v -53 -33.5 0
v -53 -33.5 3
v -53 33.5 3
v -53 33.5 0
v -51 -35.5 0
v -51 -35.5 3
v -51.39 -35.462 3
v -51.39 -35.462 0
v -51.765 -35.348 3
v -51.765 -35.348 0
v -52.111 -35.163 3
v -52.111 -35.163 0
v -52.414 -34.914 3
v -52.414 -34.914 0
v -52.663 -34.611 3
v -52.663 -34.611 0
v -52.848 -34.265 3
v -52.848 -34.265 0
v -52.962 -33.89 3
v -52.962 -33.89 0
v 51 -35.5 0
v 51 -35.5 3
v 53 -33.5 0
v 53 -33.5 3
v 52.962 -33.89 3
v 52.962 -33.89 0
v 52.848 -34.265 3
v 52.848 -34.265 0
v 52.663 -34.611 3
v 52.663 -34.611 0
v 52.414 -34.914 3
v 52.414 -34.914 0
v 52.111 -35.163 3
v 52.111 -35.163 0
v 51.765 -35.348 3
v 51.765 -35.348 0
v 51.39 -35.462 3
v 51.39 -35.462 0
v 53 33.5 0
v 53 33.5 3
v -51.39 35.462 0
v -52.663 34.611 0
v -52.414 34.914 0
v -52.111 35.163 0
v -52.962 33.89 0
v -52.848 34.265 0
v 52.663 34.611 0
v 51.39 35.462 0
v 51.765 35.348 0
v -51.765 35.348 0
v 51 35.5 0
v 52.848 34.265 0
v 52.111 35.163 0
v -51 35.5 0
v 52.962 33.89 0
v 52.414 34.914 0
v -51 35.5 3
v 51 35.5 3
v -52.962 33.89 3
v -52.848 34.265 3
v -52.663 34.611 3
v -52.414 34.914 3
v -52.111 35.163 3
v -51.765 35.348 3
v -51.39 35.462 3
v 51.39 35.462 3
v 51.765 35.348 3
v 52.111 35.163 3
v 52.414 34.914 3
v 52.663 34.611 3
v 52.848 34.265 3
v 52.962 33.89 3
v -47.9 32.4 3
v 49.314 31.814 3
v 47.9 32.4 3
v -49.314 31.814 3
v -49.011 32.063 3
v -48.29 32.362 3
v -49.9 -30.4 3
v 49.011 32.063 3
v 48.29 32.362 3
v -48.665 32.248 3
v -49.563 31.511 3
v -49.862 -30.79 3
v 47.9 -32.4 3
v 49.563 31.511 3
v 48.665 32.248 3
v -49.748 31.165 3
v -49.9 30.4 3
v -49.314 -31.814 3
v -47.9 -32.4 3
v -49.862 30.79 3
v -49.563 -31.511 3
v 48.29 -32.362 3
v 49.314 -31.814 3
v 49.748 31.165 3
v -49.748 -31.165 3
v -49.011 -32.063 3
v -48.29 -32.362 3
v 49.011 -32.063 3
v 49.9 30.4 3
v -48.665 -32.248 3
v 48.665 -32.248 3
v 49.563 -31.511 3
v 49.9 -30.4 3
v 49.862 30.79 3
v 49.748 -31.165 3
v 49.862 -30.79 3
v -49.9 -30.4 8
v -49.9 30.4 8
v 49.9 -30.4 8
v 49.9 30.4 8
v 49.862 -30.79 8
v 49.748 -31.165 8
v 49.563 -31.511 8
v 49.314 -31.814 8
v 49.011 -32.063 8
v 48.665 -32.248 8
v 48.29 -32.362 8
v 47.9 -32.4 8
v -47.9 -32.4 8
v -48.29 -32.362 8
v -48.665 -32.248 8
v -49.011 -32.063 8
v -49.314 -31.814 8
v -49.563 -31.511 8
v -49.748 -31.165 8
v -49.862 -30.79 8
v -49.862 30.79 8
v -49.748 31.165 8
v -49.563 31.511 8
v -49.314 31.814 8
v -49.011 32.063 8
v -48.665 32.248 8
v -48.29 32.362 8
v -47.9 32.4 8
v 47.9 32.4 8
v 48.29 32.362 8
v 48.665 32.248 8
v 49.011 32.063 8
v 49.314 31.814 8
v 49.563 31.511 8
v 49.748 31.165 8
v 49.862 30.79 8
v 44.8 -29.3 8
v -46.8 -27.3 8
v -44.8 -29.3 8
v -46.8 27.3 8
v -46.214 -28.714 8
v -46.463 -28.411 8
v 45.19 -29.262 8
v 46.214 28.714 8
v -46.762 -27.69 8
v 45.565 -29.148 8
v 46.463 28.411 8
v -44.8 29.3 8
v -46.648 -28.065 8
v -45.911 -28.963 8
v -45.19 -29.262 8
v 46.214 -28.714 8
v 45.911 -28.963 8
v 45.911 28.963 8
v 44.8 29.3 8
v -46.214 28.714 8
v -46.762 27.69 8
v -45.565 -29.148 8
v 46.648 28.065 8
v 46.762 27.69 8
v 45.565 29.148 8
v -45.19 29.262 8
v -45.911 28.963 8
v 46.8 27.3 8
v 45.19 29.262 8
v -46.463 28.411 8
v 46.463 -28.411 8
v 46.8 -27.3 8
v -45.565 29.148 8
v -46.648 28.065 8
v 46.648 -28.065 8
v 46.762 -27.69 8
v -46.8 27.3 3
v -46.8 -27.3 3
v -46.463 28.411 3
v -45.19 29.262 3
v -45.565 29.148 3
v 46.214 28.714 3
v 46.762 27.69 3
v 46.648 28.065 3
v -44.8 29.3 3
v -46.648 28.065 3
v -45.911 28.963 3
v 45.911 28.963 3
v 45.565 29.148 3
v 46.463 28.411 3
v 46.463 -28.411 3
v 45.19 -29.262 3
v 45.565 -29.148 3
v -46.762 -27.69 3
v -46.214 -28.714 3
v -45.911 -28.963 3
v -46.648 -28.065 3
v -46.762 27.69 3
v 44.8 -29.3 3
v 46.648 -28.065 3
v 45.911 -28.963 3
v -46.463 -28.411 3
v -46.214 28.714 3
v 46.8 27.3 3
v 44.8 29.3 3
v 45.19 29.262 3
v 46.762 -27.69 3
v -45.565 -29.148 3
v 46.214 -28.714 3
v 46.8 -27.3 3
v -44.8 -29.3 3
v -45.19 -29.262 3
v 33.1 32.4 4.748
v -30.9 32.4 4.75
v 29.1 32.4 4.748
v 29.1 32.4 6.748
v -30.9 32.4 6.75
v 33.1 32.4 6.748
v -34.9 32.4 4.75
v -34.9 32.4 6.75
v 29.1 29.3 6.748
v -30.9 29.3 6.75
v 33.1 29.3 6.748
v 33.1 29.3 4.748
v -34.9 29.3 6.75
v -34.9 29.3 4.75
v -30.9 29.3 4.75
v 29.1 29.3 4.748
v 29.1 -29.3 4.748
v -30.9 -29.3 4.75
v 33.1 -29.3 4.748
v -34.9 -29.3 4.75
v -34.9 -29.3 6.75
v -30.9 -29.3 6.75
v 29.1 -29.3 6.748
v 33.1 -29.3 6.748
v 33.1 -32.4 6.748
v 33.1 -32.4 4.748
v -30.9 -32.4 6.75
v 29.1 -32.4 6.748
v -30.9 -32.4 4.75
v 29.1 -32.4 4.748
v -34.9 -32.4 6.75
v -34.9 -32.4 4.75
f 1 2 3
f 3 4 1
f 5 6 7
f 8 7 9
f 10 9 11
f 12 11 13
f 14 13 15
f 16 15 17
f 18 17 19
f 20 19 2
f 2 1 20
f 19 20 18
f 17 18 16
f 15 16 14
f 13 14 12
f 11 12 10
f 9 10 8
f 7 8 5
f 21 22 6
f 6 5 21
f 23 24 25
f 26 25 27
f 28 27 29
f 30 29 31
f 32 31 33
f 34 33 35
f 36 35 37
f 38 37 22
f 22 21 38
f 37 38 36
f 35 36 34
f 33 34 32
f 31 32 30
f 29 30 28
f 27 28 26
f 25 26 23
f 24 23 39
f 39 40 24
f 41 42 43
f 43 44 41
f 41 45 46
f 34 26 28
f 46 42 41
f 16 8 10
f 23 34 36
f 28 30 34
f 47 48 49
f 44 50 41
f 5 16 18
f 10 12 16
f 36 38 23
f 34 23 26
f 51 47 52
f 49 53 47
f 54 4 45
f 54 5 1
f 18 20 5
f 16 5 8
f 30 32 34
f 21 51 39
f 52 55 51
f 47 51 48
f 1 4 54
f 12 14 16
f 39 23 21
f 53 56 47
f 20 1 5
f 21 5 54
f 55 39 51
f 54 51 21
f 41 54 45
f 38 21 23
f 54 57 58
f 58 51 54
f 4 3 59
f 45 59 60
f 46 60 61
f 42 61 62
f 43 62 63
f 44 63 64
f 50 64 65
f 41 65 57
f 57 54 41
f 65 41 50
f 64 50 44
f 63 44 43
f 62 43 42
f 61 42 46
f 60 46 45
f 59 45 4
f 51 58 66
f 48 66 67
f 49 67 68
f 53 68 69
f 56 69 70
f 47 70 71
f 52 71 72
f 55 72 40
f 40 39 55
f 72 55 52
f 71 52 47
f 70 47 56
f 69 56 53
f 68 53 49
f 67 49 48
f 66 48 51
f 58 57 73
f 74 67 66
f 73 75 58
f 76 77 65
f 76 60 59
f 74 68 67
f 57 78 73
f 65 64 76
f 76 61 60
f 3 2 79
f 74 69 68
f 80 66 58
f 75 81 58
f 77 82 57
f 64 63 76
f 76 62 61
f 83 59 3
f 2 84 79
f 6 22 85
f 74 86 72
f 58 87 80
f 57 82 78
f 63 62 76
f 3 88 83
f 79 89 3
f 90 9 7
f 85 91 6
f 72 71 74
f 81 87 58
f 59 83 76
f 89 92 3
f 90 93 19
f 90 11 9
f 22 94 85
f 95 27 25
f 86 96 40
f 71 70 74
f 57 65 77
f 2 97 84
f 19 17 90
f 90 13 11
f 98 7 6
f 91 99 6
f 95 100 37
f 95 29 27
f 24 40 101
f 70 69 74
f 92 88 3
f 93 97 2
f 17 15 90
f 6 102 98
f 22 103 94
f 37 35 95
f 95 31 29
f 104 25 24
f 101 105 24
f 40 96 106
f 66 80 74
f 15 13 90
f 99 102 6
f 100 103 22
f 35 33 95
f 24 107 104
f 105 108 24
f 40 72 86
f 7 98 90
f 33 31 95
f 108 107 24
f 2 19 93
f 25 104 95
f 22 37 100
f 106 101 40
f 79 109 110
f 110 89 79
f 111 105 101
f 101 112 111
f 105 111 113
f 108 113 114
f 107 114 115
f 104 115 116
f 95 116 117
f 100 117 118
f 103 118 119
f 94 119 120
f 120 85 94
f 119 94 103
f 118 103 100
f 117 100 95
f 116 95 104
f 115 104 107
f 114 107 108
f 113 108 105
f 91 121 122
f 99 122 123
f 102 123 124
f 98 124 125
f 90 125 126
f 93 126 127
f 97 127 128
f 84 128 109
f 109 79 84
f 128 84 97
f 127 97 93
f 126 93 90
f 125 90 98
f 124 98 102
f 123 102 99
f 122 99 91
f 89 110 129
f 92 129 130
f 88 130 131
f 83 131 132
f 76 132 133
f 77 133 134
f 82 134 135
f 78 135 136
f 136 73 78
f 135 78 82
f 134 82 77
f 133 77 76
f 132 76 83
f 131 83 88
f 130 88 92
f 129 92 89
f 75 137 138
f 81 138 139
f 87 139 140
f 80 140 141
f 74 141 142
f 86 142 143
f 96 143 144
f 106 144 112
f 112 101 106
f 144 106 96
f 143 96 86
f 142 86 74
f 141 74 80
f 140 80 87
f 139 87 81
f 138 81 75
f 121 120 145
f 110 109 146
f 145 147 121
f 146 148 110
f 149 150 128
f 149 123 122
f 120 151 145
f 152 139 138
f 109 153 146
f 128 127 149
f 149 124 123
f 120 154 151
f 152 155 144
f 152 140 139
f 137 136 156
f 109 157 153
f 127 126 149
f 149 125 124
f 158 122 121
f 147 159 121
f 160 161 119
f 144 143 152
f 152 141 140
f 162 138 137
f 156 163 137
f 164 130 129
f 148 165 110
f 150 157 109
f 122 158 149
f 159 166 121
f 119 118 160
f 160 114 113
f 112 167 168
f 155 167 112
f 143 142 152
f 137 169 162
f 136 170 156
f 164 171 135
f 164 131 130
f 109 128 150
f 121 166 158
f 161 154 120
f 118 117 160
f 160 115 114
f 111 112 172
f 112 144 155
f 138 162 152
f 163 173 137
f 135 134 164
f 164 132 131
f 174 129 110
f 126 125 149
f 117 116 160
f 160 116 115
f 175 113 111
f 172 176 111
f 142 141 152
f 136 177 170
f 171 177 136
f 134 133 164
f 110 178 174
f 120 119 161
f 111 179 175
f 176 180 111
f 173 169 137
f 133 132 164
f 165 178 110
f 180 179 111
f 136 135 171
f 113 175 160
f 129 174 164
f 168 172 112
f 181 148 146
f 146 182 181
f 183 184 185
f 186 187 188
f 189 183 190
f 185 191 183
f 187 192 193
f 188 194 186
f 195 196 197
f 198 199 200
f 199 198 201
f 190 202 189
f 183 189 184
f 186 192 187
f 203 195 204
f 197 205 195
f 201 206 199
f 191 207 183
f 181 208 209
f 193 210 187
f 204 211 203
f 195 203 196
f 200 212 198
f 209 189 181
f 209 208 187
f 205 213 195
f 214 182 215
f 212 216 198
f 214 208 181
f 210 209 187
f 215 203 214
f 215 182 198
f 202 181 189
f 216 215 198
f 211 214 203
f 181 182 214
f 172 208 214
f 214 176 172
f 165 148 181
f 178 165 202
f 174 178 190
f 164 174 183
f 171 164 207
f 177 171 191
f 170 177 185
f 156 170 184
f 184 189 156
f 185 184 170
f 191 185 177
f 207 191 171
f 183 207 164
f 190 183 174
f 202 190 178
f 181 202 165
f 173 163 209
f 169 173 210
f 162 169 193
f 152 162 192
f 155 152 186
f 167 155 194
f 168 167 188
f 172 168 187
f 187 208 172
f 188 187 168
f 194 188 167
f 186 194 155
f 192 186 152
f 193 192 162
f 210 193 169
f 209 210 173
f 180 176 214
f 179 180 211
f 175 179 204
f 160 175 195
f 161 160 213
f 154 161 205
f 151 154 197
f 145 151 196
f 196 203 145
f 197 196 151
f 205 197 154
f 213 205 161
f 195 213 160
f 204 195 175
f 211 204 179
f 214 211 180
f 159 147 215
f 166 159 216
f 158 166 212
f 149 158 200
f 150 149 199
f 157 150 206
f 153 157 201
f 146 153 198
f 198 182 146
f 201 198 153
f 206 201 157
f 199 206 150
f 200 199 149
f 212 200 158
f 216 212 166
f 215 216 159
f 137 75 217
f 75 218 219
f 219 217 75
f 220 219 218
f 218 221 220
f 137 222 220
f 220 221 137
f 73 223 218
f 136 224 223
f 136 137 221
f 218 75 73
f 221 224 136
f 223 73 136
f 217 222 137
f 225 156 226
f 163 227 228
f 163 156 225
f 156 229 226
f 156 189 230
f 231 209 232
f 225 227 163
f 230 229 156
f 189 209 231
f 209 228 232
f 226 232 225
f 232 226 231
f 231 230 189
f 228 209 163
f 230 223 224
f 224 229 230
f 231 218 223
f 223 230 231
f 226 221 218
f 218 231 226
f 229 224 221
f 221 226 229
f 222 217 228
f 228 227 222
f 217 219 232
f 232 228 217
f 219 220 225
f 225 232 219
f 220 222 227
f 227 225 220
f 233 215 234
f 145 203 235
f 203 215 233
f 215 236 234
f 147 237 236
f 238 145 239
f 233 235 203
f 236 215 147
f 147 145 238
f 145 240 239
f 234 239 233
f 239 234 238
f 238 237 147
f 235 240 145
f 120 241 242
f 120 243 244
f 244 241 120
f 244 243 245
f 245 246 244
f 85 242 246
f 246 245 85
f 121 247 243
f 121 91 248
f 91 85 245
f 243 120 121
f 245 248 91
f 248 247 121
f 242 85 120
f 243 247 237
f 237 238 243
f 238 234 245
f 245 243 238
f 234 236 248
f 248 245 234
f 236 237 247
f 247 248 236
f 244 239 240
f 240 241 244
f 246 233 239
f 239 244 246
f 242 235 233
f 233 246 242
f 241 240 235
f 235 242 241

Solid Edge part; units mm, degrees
sketch "Sketch1" plane through (0, 0, 0) normal (0, 0, 1) x (1, 0, 0)
  line L0 (-53, -35.5) -> (53, -35.5)
  line L1 (53, -35.5) -> (53, 35.5)
  line L2 (53, 35.5) -> (-53, 35.5)
  line L3 (-53, 35.5) -> (-53, -35.5)
extrude "Protrusion1" add sketch "Sketch1" along normal blind 3
sketch "Sketch2" plane through (0, 0, 3) normal (0, 0, 1) x (0, -1, 0)
  line L0 (-32.4, -49.9) -> (-32.4, 49.9)
  line L1 (-32.4, 49.9) -> (32.4, 49.9)
  line L2 (32.4, 49.9) -> (32.4, -49.9)
  line L3 (32.4, -49.9) -> (-32.4, -49.9)
  line L4 (-29.3, -46.8) -> (-29.3, 46.8)
  line L5 (-29.3, 46.8) -> (29.3, 46.8)
  line L6 (29.3, 46.8) -> (29.3, -46.8)
  line L7 (29.3, -46.8) -> (-29.3, -46.8)
  dimension "D1" = 3.1
extrude "ExtrudedProtrusion_2" add sketch "Sketch2" along normal blind 5
fillet "Round_1" radius 2 4 edges at (53, -35.5, 1.5) (53, 35.5, 1.5) (-53, 35.5, 1.5) (-53, -35.5, 1.5)
fillet "Round_2" radius 2 8 edges at (49.9, -32.4, 5.5) (49.9, 32.4, 5.5) (-49.9, 32.4, 5.5) (-49.9, -32.4, 5.5) (-46.8, -29.3, 5.5) (46.8, -29.3, 5.5) (46.8, 29.3, 5.5) (-46.8, 29.3, 5.5)
sketch "Sketch3" plane through (0, -32.4, 5.5) normal (0, -1, 0) x (-1, 0, 0)
  line L0 (34.9, 0.75) -> (30.9, 0.75)
  line L1 (30.9, 0.75) -> (30.9, -1.25)
  line L2 (30.9, -1.25) -> (34.9, -1.25)
  line L3 (34.9, -1.25) -> (34.9, 0.75)
  line L4 (-33.1, 0.7516) -> (-29.1, 0.7516)
  line L5 (-29.1, 0.7516) -> (-29.1, -1.2484)
  line L6 (-29.1, -1.2484) -> (-33.1, -1.2484)
  line L7 (-33.1, -1.2484) -> (-33.1, 0.7516)
  dimension "D1" = 1.7484
  dimension "D2" = 1.75
  dimension "D3" = 60
  dimension "D4" = 4
  dimension "D5" = 2
  dimension "D6" = 2
  dimension "D7" = 4
  dimension "D8" = 15
extrude "ExtrudedCutout_1" cut sketch "Sketch3" against normal blind 125.4753
